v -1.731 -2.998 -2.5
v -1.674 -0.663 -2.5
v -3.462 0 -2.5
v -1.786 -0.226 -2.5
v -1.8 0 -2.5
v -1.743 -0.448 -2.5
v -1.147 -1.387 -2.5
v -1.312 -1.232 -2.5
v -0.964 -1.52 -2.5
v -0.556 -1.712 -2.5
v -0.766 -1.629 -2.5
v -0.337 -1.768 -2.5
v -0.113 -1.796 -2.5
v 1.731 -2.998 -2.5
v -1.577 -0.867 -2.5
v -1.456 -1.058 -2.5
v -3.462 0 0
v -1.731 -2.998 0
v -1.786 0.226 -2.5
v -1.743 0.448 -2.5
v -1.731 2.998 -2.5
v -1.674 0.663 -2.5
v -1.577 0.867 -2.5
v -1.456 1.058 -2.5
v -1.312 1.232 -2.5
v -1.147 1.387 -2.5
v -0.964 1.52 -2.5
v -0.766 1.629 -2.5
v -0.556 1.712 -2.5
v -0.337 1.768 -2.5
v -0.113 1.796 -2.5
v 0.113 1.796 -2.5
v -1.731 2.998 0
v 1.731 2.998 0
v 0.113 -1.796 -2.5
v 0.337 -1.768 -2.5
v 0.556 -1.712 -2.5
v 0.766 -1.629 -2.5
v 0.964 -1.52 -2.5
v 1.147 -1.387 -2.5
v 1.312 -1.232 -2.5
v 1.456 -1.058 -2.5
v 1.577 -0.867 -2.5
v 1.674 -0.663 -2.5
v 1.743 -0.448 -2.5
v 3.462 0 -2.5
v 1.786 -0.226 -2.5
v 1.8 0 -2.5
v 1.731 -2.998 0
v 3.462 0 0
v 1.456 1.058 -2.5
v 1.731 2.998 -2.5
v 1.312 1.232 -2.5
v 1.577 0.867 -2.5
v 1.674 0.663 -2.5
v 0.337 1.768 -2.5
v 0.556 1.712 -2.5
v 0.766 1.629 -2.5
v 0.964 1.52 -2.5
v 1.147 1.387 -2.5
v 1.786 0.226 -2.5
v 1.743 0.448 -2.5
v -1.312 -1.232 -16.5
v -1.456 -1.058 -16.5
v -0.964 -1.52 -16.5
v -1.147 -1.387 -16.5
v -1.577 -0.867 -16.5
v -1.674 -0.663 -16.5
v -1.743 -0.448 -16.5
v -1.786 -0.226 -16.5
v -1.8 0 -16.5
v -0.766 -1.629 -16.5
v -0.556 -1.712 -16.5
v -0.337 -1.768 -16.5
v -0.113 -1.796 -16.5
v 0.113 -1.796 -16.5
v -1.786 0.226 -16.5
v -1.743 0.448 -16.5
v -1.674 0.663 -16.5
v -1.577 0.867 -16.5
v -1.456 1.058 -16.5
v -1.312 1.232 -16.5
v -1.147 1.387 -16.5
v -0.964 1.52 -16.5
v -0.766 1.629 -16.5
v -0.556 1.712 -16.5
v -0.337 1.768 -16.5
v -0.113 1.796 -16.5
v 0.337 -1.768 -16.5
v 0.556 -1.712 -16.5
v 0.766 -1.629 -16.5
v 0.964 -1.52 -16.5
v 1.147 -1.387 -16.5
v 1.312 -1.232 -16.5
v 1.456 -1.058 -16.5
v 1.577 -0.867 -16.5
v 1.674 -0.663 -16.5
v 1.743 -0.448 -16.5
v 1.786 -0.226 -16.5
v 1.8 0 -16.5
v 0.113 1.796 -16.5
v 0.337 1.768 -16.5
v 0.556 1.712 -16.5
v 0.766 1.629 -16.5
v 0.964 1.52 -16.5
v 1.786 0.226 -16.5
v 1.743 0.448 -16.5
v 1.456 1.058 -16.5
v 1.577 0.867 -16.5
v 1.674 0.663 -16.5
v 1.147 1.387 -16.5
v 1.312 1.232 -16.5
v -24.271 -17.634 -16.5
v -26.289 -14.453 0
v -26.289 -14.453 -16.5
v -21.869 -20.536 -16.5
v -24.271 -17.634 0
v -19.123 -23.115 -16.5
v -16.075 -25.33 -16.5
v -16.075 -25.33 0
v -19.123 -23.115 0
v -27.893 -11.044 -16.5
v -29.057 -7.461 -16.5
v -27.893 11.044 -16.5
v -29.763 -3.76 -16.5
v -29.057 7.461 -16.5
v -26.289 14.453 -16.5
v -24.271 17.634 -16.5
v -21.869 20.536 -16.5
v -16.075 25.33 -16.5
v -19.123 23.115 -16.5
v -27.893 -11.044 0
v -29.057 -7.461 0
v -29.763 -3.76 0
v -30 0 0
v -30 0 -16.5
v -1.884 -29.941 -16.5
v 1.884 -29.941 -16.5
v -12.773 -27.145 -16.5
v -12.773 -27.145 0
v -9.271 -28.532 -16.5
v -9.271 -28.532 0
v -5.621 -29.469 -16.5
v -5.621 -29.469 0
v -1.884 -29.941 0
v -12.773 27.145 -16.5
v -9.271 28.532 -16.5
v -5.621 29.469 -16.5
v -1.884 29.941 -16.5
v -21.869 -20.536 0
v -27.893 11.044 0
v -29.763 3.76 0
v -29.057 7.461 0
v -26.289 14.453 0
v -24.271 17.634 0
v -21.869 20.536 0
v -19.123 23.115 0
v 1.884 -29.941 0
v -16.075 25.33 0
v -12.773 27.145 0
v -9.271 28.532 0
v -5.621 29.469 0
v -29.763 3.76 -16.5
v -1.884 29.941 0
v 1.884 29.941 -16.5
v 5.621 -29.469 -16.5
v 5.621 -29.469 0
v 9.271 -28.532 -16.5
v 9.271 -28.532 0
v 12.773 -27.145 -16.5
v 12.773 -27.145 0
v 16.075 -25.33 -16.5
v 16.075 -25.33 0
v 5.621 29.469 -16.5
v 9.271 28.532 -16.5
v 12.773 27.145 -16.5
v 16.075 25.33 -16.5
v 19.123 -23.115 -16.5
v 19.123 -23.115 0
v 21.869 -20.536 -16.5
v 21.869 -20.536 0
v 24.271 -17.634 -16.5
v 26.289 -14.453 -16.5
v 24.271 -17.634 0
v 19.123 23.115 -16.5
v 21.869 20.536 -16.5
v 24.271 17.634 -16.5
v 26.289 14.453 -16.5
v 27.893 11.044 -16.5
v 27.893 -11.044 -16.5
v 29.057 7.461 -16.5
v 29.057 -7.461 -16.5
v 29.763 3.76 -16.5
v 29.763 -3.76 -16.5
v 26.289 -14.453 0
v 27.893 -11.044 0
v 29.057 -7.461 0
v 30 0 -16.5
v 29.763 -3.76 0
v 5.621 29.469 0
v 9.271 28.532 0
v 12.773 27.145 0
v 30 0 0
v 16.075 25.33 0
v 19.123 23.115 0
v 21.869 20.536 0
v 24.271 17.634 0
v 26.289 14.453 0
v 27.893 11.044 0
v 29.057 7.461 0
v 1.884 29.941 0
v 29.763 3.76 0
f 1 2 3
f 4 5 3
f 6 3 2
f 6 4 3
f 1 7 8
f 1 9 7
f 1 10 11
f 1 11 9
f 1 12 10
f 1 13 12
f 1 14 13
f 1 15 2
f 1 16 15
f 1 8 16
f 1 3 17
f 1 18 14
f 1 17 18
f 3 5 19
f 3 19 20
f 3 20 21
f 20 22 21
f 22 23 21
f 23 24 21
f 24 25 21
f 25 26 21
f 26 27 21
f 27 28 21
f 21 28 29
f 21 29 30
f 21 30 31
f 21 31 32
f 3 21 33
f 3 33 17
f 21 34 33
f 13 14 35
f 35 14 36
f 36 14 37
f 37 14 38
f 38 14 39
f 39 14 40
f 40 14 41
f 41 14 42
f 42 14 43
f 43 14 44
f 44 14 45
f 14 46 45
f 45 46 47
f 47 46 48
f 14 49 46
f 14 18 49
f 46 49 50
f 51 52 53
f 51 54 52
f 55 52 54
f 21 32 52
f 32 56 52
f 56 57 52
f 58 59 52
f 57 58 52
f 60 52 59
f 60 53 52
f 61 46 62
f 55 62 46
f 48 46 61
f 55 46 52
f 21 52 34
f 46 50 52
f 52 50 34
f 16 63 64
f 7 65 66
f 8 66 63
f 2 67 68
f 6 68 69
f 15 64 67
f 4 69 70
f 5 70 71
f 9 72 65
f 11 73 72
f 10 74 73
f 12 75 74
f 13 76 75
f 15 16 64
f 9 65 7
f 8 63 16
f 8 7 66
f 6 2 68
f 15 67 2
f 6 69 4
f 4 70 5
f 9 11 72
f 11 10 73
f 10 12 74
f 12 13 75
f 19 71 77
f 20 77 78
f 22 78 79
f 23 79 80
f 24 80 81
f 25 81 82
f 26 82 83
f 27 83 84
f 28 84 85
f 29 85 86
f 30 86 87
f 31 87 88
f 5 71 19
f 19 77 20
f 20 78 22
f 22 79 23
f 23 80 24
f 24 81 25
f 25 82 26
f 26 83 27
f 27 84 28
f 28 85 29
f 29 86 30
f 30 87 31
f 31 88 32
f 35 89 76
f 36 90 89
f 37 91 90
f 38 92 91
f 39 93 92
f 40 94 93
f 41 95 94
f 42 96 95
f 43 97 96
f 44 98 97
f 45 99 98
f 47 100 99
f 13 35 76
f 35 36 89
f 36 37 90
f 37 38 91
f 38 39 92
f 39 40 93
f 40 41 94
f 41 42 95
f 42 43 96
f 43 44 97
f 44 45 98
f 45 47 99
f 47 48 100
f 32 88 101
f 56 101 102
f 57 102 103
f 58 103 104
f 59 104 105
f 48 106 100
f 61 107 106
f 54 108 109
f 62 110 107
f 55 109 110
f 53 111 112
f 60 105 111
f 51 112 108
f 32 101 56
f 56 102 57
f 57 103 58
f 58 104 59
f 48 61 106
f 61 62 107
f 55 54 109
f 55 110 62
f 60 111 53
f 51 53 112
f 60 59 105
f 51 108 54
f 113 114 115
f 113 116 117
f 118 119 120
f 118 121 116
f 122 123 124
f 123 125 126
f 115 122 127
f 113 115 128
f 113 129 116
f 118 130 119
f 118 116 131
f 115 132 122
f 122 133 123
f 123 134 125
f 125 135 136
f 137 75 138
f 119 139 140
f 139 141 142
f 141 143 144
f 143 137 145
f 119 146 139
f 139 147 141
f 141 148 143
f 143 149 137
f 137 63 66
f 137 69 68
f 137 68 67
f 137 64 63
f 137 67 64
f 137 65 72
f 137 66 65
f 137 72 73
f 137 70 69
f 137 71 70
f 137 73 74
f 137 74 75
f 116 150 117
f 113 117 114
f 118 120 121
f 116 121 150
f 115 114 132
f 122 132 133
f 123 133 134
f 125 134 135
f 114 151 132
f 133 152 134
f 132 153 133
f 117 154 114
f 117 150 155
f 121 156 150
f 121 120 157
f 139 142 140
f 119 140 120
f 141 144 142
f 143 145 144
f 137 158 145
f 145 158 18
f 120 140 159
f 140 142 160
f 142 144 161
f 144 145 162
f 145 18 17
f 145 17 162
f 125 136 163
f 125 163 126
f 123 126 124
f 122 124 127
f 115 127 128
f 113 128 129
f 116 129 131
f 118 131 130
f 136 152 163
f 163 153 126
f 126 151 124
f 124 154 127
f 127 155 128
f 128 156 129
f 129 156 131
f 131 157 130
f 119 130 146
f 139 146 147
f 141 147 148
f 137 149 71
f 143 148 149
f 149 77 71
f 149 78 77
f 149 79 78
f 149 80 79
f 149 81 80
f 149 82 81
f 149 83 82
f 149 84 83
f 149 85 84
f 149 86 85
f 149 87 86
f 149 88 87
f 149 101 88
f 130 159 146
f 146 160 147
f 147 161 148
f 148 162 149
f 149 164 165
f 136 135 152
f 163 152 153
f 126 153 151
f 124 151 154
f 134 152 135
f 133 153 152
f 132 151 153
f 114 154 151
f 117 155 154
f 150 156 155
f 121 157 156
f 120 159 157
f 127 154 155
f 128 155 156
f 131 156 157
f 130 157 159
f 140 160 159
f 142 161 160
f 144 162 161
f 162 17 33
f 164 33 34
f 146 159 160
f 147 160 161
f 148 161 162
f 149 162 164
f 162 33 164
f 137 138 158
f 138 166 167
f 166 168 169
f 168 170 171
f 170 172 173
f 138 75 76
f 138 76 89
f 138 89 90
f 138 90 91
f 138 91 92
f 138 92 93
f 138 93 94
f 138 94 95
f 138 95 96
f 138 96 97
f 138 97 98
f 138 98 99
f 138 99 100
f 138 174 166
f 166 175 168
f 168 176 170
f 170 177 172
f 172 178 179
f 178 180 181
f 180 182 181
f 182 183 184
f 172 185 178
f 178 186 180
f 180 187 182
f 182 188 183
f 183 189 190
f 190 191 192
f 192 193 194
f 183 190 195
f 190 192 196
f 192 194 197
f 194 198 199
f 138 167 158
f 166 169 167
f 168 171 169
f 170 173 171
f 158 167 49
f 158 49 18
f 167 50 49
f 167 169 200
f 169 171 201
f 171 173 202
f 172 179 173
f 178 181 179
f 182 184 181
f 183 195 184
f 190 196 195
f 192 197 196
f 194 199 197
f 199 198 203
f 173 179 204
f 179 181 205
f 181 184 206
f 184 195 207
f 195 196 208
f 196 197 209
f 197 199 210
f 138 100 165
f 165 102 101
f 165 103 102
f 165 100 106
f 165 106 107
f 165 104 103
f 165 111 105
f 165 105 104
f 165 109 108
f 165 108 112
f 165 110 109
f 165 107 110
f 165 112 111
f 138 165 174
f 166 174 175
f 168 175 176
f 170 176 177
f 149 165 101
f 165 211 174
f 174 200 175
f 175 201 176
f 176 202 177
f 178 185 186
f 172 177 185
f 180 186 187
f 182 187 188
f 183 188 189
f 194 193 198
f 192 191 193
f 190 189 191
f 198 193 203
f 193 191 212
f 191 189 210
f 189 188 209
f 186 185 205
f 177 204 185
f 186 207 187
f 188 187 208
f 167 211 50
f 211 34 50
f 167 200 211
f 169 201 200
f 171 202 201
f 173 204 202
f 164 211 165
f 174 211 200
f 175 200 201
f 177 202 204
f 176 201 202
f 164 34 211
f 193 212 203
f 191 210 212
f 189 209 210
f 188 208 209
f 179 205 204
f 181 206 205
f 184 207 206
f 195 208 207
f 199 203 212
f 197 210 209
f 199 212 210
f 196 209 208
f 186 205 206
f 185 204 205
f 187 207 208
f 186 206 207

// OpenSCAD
$fn = 50;

difference() {
	union() {
		translate(v = [0, 0, -16.5]) {
			cylinder(h = 16.5, r = 30.0);
		}
	}
	union() {
		translate(v = [0, 0, 0]) {
			rotate(a = [0, 0, 0]) {
				difference() {
					union() {
						translate(v = [0, 0, -2.5]) {
							linear_extrude(height = 2.5) {
								polygon(points = [[3.4619999999999997, 0.0], [1.7310000000000003, 2.9981799479017264], [-1.7309999999999992, 2.9981799479017264], [-3.4619999999999997, 4.2397272186481365e-16], [-1.7310000000000014, -2.998179947901726], [1.7309999999999977, -2.9981799479017277]]);
							}
						}
					}
					union();
				}
			}
		}
		#translate(v = [0, 0, -100.0]) {
			cylinder(h = 200, r = 1.8);
		}
	}
}
